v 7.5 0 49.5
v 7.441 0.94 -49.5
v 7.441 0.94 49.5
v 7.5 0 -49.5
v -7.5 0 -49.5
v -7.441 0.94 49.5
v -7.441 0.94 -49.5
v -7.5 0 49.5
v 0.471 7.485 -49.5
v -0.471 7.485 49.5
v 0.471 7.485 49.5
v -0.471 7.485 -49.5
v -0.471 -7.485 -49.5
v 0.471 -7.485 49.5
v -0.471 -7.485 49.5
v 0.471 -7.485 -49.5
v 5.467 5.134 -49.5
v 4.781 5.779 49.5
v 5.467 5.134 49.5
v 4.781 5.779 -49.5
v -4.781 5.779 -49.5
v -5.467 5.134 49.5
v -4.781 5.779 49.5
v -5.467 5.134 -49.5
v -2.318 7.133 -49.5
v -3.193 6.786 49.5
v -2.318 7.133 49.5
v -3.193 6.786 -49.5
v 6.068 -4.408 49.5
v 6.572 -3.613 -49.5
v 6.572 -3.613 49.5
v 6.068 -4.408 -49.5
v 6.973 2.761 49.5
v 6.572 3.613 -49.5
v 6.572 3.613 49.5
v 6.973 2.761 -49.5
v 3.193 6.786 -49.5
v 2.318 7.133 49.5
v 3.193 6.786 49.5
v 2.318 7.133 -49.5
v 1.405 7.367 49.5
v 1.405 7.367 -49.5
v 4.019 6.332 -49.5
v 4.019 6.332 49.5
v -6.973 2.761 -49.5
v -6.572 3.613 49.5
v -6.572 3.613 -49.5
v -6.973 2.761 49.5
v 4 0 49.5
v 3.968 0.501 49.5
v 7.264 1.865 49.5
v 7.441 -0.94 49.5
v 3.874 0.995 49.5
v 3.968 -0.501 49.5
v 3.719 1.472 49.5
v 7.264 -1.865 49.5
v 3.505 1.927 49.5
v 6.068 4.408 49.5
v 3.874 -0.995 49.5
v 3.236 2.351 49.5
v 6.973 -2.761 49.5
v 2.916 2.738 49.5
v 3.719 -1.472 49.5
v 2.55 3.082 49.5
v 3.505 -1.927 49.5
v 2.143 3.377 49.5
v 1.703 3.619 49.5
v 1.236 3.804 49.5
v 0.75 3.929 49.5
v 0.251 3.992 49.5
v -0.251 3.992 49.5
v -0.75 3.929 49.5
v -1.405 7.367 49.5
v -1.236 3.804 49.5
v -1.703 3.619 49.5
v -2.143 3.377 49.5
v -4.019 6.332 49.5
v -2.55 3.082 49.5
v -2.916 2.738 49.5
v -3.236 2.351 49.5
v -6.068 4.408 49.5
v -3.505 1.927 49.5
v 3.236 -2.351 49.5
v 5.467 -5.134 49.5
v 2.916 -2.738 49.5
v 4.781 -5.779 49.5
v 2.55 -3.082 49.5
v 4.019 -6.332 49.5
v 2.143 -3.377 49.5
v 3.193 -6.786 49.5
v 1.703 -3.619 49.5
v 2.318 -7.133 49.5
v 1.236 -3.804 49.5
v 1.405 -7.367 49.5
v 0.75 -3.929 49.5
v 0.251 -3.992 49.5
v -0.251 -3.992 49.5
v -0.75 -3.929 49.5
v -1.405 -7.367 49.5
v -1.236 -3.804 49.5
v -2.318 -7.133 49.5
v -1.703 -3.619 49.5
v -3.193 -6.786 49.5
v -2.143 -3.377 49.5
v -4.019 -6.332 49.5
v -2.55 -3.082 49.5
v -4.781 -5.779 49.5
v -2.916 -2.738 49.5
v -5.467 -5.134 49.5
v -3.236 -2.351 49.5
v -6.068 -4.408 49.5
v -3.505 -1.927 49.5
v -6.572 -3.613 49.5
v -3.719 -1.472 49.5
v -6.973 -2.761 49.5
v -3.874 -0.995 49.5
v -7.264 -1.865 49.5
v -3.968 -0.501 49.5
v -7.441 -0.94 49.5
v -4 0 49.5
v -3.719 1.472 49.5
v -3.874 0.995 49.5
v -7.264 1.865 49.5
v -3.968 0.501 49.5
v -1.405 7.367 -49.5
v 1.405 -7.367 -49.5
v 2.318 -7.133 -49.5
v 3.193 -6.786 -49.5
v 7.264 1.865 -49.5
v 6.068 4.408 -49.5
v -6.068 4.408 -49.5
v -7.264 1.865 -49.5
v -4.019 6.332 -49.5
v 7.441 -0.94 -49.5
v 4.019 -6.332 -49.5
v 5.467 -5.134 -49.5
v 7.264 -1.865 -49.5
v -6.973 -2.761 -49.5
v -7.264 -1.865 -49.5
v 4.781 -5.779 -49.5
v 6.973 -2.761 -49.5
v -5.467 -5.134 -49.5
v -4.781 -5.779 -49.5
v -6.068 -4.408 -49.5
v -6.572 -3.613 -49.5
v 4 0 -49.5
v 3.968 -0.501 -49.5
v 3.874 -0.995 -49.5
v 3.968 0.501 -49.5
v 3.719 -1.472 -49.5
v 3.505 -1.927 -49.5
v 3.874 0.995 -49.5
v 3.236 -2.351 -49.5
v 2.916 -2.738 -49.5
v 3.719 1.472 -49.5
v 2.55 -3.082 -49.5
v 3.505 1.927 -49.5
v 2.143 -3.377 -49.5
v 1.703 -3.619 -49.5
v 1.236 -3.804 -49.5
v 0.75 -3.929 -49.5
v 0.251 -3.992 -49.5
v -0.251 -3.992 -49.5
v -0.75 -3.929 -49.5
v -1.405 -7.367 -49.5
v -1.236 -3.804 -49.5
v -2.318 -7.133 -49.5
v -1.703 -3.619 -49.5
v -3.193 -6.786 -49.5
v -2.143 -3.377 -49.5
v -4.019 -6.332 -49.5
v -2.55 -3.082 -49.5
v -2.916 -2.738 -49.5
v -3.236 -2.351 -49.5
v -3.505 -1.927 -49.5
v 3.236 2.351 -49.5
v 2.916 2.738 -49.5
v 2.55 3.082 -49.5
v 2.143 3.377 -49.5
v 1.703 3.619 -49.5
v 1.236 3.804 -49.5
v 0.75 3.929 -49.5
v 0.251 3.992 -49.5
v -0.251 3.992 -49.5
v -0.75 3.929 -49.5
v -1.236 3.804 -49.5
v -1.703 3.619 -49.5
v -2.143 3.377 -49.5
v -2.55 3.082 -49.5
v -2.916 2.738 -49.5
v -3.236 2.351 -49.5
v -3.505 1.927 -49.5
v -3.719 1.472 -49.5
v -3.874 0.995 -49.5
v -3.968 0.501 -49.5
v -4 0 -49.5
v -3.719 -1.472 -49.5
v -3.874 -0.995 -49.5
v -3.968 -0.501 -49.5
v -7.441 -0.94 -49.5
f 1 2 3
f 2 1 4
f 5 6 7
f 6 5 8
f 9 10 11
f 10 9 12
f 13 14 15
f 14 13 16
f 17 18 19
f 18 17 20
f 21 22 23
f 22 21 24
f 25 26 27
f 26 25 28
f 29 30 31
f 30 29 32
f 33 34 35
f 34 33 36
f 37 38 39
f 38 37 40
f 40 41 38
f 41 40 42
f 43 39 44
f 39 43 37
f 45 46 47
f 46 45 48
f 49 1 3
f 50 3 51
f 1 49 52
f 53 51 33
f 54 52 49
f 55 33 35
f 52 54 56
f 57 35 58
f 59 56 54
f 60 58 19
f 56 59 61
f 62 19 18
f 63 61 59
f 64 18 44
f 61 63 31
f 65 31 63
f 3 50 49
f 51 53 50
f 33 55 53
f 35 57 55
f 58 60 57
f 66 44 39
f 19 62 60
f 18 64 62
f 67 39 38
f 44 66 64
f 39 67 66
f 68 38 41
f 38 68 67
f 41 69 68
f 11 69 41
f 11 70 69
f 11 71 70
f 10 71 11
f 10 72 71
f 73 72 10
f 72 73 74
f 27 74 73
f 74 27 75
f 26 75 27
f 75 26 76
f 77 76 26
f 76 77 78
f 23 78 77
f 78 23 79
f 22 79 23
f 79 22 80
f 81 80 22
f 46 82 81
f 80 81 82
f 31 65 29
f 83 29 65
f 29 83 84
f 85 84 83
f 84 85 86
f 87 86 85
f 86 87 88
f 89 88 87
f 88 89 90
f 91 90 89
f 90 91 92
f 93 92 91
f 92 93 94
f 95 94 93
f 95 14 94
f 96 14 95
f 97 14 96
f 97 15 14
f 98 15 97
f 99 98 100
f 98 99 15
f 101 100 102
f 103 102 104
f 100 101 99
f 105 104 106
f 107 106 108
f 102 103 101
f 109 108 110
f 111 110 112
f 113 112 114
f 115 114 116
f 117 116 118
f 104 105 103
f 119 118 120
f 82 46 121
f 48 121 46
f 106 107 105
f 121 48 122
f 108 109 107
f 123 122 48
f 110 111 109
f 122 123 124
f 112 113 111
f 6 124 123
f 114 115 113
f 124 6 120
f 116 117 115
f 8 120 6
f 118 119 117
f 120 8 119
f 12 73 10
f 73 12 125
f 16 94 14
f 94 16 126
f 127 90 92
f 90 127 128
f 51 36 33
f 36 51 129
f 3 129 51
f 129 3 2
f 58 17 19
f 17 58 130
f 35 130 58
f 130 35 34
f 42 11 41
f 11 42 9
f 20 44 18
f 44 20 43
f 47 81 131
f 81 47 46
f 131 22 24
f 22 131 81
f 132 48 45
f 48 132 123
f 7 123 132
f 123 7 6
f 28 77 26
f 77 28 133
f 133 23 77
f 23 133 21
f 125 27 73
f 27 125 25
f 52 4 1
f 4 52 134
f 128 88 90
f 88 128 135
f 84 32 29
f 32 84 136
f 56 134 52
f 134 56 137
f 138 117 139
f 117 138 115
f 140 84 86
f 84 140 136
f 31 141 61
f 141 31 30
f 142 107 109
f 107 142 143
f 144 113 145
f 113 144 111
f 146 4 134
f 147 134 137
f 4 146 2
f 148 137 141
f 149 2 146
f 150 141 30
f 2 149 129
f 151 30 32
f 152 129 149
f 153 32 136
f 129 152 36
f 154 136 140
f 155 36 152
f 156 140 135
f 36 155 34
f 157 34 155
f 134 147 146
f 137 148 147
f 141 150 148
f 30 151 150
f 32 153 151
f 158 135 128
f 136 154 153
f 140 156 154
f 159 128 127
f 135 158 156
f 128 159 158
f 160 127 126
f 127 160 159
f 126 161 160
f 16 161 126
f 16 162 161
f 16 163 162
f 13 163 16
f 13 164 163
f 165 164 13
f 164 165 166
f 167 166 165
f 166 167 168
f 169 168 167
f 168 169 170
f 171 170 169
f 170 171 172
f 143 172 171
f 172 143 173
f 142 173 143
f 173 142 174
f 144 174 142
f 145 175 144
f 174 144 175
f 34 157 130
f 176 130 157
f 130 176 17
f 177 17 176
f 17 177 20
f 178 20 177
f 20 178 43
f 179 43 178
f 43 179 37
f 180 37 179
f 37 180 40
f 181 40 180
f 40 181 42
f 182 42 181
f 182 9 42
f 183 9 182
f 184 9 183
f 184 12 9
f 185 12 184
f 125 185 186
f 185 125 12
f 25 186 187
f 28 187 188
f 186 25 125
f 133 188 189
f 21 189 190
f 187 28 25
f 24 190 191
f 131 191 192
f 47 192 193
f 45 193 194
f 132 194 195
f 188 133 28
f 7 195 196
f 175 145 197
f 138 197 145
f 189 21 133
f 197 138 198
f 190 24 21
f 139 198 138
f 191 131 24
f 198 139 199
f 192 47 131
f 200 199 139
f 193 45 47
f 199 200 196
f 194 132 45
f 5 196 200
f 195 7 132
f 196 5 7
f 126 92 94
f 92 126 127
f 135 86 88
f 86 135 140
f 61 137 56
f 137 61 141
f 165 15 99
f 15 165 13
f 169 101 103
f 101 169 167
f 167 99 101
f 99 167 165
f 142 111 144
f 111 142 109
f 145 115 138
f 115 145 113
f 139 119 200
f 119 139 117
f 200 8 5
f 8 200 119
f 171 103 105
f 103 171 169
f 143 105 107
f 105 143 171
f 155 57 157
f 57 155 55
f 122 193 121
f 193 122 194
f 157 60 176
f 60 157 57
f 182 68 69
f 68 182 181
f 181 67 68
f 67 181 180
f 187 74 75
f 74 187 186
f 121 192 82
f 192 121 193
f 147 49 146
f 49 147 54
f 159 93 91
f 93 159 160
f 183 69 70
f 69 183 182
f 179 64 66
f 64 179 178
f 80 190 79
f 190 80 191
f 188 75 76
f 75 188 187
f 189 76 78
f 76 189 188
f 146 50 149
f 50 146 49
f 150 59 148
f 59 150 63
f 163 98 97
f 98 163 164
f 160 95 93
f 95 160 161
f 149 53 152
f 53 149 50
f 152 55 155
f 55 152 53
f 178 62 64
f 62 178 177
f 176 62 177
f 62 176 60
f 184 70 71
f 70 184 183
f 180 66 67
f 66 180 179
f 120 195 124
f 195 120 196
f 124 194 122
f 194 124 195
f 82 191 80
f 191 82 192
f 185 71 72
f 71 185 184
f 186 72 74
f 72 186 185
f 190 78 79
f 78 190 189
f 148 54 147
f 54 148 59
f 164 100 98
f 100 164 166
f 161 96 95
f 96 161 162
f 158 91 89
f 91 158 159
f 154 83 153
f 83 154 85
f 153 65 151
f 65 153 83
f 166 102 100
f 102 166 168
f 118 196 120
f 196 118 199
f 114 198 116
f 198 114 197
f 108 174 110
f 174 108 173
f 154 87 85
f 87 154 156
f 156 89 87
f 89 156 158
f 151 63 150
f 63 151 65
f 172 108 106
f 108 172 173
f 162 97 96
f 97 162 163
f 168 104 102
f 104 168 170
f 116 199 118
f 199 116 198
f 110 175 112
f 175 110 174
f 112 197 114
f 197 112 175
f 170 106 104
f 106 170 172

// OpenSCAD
$fn = 50;


difference() {
	union() {
		translate(v = [0, 0, -49.5000000000]) {
			cylinder(h = 99, r = 7.5000000000);
		}
	}
	union() {
		translate(v = [0, 0, -100.0000000000]) {
			cylinder(h = 200, r = 4.0000000000);
		}
	}
}
